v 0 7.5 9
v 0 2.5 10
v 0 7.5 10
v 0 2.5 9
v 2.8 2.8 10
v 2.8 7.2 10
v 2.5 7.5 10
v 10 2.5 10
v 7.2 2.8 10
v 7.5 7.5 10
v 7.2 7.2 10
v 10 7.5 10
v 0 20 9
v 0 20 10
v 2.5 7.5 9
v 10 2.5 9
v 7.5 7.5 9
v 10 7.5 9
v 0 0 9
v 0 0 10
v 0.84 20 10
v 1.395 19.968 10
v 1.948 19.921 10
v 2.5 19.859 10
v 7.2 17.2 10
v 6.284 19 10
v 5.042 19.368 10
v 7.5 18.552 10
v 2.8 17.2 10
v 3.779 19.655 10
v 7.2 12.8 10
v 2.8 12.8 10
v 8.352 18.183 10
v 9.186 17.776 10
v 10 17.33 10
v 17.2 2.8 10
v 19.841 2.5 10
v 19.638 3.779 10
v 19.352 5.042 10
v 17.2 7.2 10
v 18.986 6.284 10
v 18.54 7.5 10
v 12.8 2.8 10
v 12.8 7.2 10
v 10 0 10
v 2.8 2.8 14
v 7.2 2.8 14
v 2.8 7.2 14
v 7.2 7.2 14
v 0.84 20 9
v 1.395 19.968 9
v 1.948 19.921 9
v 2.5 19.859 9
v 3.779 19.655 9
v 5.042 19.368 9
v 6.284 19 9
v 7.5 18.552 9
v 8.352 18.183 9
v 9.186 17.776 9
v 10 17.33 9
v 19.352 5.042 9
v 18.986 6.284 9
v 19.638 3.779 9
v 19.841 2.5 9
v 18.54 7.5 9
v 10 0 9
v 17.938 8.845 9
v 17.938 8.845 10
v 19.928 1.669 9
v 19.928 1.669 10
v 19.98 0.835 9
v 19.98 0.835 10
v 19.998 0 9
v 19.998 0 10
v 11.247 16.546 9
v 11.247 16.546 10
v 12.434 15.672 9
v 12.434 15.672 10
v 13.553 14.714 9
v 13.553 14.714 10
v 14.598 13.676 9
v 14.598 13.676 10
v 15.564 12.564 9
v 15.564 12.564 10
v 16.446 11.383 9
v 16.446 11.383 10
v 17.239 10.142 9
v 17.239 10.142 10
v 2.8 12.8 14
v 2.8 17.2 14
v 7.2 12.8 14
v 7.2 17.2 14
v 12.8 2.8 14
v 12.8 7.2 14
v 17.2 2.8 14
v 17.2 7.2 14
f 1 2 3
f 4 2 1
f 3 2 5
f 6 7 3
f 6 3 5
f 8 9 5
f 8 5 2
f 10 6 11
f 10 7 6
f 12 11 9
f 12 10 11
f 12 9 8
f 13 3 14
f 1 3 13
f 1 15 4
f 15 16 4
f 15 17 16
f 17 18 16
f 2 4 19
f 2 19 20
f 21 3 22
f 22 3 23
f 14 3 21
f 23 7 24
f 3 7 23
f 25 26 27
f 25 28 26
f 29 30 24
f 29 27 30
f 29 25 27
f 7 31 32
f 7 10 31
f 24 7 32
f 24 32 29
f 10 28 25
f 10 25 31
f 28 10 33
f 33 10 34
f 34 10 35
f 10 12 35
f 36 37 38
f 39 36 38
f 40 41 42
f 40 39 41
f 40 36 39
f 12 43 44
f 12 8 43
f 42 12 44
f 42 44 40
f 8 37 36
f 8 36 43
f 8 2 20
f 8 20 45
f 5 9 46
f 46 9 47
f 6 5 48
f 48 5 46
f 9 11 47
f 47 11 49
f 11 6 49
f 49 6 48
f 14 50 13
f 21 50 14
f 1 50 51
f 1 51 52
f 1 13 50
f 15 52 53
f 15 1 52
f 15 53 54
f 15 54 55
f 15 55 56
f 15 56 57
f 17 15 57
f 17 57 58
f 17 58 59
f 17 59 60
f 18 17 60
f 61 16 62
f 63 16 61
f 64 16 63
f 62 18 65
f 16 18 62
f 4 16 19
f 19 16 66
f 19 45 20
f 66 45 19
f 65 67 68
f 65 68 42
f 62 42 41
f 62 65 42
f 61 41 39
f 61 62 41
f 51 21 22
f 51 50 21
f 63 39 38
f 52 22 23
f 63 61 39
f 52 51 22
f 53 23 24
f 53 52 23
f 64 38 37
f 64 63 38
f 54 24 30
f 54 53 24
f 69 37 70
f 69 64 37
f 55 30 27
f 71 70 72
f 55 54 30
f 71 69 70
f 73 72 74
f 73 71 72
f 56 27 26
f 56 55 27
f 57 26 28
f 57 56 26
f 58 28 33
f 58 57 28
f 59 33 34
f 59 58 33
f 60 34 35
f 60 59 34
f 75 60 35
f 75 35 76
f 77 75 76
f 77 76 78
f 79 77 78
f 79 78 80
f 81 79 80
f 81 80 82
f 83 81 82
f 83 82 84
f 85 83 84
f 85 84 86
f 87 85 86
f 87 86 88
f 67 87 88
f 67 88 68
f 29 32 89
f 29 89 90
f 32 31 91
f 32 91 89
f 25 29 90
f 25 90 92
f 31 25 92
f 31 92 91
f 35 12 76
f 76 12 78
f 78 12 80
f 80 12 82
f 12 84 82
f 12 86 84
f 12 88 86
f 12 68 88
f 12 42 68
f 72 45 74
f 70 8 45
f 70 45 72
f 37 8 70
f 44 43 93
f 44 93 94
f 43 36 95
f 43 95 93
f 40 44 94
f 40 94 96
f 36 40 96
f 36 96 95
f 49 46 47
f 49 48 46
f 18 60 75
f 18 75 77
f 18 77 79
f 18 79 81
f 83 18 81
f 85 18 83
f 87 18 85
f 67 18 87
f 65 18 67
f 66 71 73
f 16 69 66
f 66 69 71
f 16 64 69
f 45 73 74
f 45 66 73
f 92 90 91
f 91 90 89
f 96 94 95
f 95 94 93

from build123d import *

# Parameters (mm, degrees)
BOX_W              = 10
BOX_H              = 10
BOX_DEPTH          = 10
SKETCH_W           = 4.4
SKETCH_H           = 4.4
PAD_DEPTH          = 4
PAD_FACE4_W        = 10
PAD_FACE4_H        = 10
POCKET_DEPTH       = 2.5
POCKET_FACE5_W     = 10
POCKET_FACE5_H     = 10
POCKET001_DEPTH    = 2.5
SKETCH001_W        = 5
SKETCH001_H        = 10
PAD001_DEPTH       = 10
SKETCH002_W        = 4.4
SKETCH002_H        = 4.4
PAD002_DEPTH       = 4
PAD002_FACE22_W    = 4.4
PAD002_FACE22_H    = 4.4
POCKET002_DEPTH    = 5
POCKET002_FACE16_W = 5
POCKET002_FACE16_H = 10
POCKET003_DEPTH    = 7.5
POCKET003_FACE15_W = 5
POCKET003_FACE15_H = 10
POCKET004_DEPTH    = 2.5
POCKET005_DEPTH    = 9
POCKET005_FACE8_W  = 5
POCKET005_FACE8_H  = 1
PAD003_DEPTH       = 10
PAD003_FACE3_W     = 2.5
PAD003_FACE3_H     = 1
PAD004_DEPTH       = 15
PAD004_FACE7_W     = 5
PAD004_FACE7_H     = 1
PAD005_DEPTH       = 15
PAD005_FACE8_W     = 2.5
PAD005_FACE8_H     = 1
PAD006_DEPTH       = 15
PAD006_FACE23_W    = 10
PAD006_FACE23_H    = 1
PAD007_DEPTH       = 15
SKETCH003_W        = 4.4
SKETCH003_H        = 4.4
PAD008_DEPTH       = 4
PAD008_FACE15_W    = 2.5
PAD008_FACE15_H    = 1
POCKET006_DEPTH    = 2.5
POCKET006_FACE20_W = 5
POCKET006_FACE20_H = 1
POCKET007_DEPTH    = 2.5
POCKET007_FACE27_W = 2.5
POCKET007_FACE27_H = 1
POCKET008_DEPTH    = 2.5
POCKET008_FACE37_W = 10
POCKET008_FACE37_H = 1
POCKET009_DEPTH    = 2.5
POCKET009_FACE5_W  = 10
POCKET009_FACE5_H  = 1
PAD009_DEPTH       = 2.5
PAD009_FACE29_W    = 10
PAD009_FACE29_H    = 1
PAD010_DEPTH       = 2.5
POCKET010_DEPTH    = 5


with BuildPart() as part:
    # Box → Box (new body)
    with BuildSketch(Plane.XY):
        with Locations((5, 5)):
            Rectangle(BOX_W, BOX_H)
    extrude(amount=BOX_DEPTH)

    # Sketch (on Face6 of BaseFeature) → Pad (new body)
    with BuildSketch(Plane.XY.offset(10)):
        with Locations((5, 5)):
            Rectangle(SKETCH_W, SKETCH_H)
    extrude(amount=PAD_DEPTH)

    # Pad Face4 → Pocket (cut)
    with BuildSketch(Plane(origin=(5, 10, 5), x_dir=(1, 0, 0), z_dir=(0, 1, 0))):
        Rectangle(PAD_FACE4_W, PAD_FACE4_H)
    extrude(amount=-POCKET_DEPTH, mode=Mode.SUBTRACT)

    # Pocket Face5 → Pocket001 (cut)
    with BuildSketch(Plane(origin=(5, 0, 5), x_dir=(-1, 0, 0), z_dir=(0, -1, 0))):
        Rectangle(POCKET_FACE5_W, POCKET_FACE5_H)
    extrude(amount=-POCKET001_DEPTH, mode=Mode.SUBTRACT)

    # Sketch001 (on Face3 of Pocket001) → Pad001 (join)
    with BuildSketch(Plane(origin=(0, 7.5, 0), x_dir=(-1, 0, 0), z_dir=(0, 1, 0))):
        with Locations((-5, 5)):
            Rectangle(SKETCH001_W, SKETCH001_H)
    extrude(amount=PAD001_DEPTH)

    # Sketch002 (on Face6 of Pad001) → Pad002 (join)
    with BuildSketch(Plane.XY.offset(10)):
        with Locations((5, 12.5)):
            Rectangle(SKETCH002_W, SKETCH002_H)
    extrude(amount=PAD002_DEPTH)

    # Pad002 Face22 → Pocket002 (cut)
    with BuildSketch(Plane(origin=(5, 12.5, 14), x_dir=(0, 1, 0), z_dir=(0, 0, 1))):
        Rectangle(PAD002_FACE22_W, PAD002_FACE22_H)
    extrude(amount=-POCKET002_DEPTH, mode=Mode.SUBTRACT)

    # Pocket002 Face16 → Pocket003 (cut)
    with BuildSketch(Plane(origin=(5, 17.5, 5), x_dir=(1, 0, 0), z_dir=(0, 1, 0))):
        Rectangle(POCKET002_FACE16_W, POCKET002_FACE16_H)
    extrude(amount=-POCKET003_DEPTH, mode=Mode.SUBTRACT)

    # Pocket003 Face15 → Pocket004 (cut)
    with BuildSketch(Plane(origin=(5, 10, 5), x_dir=(1, 0, 0), z_dir=(0, 1, 0))):
        Rectangle(POCKET003_FACE15_W, POCKET003_FACE15_H)
    extrude(amount=-POCKET004_DEPTH, mode=Mode.SUBTRACT)

    # Pocket004 Face4 → Pocket005 (cut)
    with BuildSketch(Plane(origin=(5, 5, 0), x_dir=(0, -1, 0), z_dir=(0, 0, -1))):
        Polygon((2.5, 5), (-2.5, 5), (-2.5, 2.5), (-2.5, -2.5), (-2.5, -5), (2.5, -5), align=None)
    extrude(amount=-POCKET005_DEPTH, mode=Mode.SUBTRACT)

    # Pocket005 Face8 → Pad003 (add)
    with BuildSketch(Plane(origin=(10, 5, 9.5), x_dir=(0, -1, 0), z_dir=(1, 0, 0))):
        Rectangle(POCKET005_FACE8_W, POCKET005_FACE8_H)
    extrude(amount=PAD003_DEPTH)

    # Pad003 Face3 → Pad004 (add)
    with BuildSketch(Plane(origin=(1.25, 7.5, 9.5), x_dir=(1, 0, 0), z_dir=(0, 1, 0))):
        Rectangle(PAD003_FACE3_W, PAD003_FACE3_H)
    extrude(amount=PAD004_DEPTH)

    # Pad004 Face7 → Pad005 (add)
    with BuildSketch(Plane(origin=(5, 7.5, 9.5), x_dir=(1, 0, 0), z_dir=(0, 1, 0))):
        Rectangle(PAD004_FACE7_W, PAD004_FACE7_H)
    extrude(amount=PAD005_DEPTH)

    # Pad005 Face8 → Pad006 (add)
    with BuildSketch(Plane(origin=(8.75, 7.5, 9.5), x_dir=(1, 0, 0), z_dir=(0, 1, 0))):
        Rectangle(PAD005_FACE8_W, PAD005_FACE8_H)
    extrude(amount=PAD006_DEPTH)

    # Pad006 Face23 → Pad007 (add)
    with BuildSketch(Plane(origin=(15, 7.5, 9.5), x_dir=(1, 0, 0), z_dir=(0, 1, 0))):
        Rectangle(PAD006_FACE23_W, PAD006_FACE23_H)
    extrude(amount=PAD007_DEPTH)

    # Sketch003 (on Face9 of Pad007) → Pad008 (join)
    with BuildSketch(Plane.XY.offset(10)):
        with Locations((5, 15)):
            Rectangle(SKETCH003_W, SKETCH003_H)
        with Locations((15, 5)):
            Rectangle(SKETCH003_W, SKETCH003_H)
    extrude(amount=PAD008_DEPTH)

    # Pad008 Face15 → Pocket006 (cut)
    with BuildSketch(Plane(origin=(1.25, 22.5, 9.5), x_dir=(1, 0, 0), z_dir=(0, 1, 0))):
        Rectangle(PAD008_FACE15_W, PAD008_FACE15_H)
    extrude(amount=-POCKET006_DEPTH, mode=Mode.SUBTRACT)

    # Pocket006 Face20 → Pocket007 (cut)
    with BuildSketch(Plane(origin=(5, 22.5, 9.5), x_dir=(1, 0, 0), z_dir=(0, 1, 0))):
        Rectangle(POCKET006_FACE20_W, POCKET006_FACE20_H)
    extrude(amount=-POCKET007_DEPTH, mode=Mode.SUBTRACT)

    # Pocket007 Face27 → Pocket008 (cut)
    with BuildSketch(Plane(origin=(8.75, 22.5, 9.5), x_dir=(1, 0, 0), z_dir=(0, 1, 0))):
        Rectangle(POCKET007_FACE27_W, POCKET007_FACE27_H)
    extrude(amount=-POCKET008_DEPTH, mode=Mode.SUBTRACT)

    # Pocket008 Face37 → Pocket009 (cut)
    with BuildSketch(Plane(origin=(15, 22.5, 9.5), x_dir=(1, 0, 0), z_dir=(0, 1, 0))):
        Rectangle(POCKET008_FACE37_W, POCKET008_FACE37_H)
    extrude(amount=-POCKET009_DEPTH, mode=Mode.SUBTRACT)

    # Pocket009 Face5 → Pad009 (add)
    with BuildSketch(Plane(origin=(5, 2.5, 9.5), x_dir=(-1, 0, 0), z_dir=(0, -1, 0))):
        Rectangle(POCKET009_FACE5_W, POCKET009_FACE5_H)
    extrude(amount=PAD009_DEPTH)

    # Pad009 Face29 → Pad010 (add)
    with BuildSketch(Plane(origin=(15, 2.5, 9.5), x_dir=(-1, 0, 0), z_dir=(0, -1, 0))):
        Rectangle(PAD009_FACE29_W, PAD009_FACE29_H)
    extrude(amount=PAD010_DEPTH)

    # Sketch004 (on Face4 of Pad010) → Pocket010 (cut)
    with BuildSketch(Plane(origin=(0, 0, 9), x_dir=(1, 0, 0), z_dir=(0, 0, -1))):
        with BuildLine():
            ThreePointArc((-0.886172, -19.999824), (13.825198, -14.457891), (19.99786, 0.000176))
            Line((19.99786, 0.000176), (29.314018, -0.170935))
            Line((29.314018, -0.170935), (32.97797, -26.044666))
            Line((32.97797, -26.044666), (-1.074295, -29.619213))
            Line((-1.074295, -29.619213), (-0.886172, -19.999824))
        make_face()
    extrude(amount=-POCKET010_DEPTH, mode=Mode.SUBTRACT)


solid = part.part
